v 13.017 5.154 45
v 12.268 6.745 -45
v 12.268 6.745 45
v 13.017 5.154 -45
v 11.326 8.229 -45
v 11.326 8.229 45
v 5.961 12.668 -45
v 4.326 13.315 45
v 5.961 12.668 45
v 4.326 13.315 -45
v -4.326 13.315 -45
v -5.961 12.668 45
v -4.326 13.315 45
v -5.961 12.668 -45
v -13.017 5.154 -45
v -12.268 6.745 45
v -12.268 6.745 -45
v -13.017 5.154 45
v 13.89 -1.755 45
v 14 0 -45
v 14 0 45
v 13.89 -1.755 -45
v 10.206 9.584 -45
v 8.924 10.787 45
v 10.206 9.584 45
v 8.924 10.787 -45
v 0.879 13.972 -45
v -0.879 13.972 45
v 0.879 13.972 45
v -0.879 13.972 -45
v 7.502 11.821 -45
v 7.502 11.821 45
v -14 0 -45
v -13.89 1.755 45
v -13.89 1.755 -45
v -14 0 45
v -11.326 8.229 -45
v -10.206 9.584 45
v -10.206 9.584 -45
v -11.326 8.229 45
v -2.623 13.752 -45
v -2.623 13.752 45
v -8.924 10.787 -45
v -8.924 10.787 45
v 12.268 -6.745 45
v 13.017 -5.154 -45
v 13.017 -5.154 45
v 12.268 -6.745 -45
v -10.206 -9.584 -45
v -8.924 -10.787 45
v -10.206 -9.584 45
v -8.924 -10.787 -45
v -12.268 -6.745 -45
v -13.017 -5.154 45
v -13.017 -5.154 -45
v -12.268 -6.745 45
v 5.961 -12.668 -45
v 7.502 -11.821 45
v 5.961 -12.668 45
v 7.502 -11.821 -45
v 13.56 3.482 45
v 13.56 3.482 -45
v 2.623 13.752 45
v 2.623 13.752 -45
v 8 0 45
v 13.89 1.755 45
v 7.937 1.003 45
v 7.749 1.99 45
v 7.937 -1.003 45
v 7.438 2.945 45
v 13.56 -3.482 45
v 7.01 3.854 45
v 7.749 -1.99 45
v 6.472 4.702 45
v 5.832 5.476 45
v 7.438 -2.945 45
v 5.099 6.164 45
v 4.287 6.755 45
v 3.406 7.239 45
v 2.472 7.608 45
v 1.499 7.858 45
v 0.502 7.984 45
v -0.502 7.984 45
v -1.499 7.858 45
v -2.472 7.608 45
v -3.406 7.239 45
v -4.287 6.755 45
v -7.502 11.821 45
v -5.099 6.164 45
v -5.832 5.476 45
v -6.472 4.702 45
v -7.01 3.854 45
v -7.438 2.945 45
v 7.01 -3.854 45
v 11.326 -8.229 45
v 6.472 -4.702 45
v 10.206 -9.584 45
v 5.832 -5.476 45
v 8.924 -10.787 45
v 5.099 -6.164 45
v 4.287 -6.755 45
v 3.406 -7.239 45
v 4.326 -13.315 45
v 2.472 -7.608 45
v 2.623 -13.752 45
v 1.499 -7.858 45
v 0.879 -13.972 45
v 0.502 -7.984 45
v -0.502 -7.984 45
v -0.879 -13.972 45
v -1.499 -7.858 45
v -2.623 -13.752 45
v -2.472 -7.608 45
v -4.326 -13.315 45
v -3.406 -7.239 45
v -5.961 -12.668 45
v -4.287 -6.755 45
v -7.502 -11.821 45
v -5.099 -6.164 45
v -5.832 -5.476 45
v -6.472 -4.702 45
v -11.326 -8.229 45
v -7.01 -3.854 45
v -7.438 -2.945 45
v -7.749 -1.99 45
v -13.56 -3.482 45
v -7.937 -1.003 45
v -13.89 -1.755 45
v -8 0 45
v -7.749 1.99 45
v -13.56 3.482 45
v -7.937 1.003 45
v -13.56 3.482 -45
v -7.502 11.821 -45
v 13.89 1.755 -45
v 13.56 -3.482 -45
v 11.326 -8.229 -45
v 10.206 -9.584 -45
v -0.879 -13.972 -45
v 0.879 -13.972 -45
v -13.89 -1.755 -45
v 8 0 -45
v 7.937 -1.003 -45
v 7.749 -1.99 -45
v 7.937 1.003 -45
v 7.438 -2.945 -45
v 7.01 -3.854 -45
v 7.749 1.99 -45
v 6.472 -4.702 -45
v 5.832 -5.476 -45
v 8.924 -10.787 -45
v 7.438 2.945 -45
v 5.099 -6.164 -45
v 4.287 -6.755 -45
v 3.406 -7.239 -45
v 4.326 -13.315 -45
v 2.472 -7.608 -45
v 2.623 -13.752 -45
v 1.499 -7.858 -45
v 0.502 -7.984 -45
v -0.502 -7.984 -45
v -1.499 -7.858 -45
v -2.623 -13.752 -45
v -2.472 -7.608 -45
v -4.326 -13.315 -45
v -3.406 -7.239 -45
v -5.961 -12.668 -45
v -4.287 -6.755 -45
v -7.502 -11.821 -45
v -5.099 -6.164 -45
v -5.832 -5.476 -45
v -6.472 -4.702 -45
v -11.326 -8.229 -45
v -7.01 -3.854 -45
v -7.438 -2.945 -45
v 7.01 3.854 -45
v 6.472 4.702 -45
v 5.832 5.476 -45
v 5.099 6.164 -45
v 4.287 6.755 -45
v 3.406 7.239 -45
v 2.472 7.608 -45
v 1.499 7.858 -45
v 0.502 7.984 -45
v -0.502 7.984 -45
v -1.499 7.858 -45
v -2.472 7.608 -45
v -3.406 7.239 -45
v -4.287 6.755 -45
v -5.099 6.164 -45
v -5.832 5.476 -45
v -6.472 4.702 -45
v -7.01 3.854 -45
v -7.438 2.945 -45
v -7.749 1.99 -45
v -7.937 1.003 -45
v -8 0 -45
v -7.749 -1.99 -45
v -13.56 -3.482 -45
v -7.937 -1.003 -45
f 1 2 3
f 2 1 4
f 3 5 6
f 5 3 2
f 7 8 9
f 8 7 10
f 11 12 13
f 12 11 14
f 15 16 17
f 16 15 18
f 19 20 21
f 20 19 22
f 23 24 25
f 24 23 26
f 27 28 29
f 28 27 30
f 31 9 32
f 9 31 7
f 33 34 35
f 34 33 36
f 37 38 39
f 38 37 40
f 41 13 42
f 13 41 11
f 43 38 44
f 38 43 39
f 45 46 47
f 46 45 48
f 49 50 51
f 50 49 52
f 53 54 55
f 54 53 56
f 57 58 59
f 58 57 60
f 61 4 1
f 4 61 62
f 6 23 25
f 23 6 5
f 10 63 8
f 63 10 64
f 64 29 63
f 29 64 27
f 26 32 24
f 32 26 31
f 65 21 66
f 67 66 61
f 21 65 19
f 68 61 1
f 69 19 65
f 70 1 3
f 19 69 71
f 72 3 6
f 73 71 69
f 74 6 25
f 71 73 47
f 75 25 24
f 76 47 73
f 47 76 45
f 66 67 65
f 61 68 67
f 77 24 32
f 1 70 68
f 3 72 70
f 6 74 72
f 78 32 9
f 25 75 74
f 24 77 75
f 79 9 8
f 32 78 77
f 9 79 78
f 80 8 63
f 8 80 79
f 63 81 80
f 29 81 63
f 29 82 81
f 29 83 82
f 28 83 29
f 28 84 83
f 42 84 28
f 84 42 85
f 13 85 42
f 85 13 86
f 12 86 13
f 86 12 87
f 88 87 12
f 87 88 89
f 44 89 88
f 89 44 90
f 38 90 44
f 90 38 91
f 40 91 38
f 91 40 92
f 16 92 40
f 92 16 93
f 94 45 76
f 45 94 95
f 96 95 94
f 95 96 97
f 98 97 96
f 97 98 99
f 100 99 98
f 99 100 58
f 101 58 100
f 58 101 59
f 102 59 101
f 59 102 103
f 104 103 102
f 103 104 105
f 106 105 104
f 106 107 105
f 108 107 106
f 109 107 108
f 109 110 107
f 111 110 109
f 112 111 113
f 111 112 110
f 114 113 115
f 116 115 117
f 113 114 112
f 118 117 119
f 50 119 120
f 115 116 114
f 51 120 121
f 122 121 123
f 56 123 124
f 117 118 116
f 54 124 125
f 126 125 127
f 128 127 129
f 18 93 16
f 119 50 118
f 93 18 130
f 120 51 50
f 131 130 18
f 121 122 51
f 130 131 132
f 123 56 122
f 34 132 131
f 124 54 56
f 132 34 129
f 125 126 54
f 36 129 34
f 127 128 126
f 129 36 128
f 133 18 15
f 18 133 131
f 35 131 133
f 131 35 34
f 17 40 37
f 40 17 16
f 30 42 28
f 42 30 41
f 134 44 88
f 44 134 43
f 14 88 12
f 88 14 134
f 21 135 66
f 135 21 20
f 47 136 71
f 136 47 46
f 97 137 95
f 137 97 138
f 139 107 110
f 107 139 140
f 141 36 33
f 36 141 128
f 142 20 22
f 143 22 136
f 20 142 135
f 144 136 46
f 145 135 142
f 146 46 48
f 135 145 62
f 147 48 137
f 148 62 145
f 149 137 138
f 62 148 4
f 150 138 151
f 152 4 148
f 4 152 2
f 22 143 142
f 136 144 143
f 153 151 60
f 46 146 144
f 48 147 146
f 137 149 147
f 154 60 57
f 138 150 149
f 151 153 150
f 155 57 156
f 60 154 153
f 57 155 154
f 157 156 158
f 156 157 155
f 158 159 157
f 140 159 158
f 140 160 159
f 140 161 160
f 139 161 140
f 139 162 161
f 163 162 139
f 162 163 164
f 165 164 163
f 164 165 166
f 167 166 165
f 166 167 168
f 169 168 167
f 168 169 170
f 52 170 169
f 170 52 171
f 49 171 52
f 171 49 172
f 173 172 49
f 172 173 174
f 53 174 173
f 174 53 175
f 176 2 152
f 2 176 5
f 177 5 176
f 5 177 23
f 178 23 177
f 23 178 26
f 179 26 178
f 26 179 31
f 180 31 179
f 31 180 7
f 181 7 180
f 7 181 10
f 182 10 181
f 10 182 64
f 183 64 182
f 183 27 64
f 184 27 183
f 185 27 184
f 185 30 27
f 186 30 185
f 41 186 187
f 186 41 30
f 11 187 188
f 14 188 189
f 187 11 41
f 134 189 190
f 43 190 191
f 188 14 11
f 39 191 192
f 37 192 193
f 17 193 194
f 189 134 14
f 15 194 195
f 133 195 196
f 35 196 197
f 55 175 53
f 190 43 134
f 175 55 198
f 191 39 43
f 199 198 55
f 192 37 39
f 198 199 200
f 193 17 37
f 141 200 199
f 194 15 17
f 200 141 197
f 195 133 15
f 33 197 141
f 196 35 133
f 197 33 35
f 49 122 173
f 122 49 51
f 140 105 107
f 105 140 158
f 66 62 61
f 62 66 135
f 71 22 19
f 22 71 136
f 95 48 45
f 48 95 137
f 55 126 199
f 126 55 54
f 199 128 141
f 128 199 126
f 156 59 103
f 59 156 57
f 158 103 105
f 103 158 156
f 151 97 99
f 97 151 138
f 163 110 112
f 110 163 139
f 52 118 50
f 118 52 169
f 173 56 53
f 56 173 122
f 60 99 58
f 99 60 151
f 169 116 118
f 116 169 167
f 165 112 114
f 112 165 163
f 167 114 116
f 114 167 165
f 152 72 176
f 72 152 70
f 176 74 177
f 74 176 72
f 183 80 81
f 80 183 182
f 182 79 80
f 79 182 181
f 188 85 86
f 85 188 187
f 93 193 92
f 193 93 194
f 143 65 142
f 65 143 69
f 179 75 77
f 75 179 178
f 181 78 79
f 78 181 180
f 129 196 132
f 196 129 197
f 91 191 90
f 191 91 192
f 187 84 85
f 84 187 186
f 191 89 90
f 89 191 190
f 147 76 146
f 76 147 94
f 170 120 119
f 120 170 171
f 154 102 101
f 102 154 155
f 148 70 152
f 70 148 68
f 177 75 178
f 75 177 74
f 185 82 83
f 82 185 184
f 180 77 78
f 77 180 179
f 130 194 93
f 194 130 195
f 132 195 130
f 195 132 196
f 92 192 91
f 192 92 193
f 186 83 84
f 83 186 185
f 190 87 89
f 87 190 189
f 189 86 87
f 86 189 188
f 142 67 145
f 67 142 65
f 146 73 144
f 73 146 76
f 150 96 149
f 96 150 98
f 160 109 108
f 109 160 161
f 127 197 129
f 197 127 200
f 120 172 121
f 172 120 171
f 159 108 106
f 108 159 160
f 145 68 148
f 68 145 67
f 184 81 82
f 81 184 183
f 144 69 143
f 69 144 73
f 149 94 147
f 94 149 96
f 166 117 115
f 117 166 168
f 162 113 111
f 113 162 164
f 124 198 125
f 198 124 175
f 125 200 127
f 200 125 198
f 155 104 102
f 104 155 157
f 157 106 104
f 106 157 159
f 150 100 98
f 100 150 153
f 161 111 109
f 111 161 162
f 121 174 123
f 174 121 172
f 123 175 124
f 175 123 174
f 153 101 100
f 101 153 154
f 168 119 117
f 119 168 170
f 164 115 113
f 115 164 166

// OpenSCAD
$fn = 50;


difference() {
	union() {
		translate(v = [0, 0, -45.0000000000]) {
			cylinder(h = 90, r = 14.0000000000);
		}
	}
	union() {
		translate(v = [0, 0, -100.0000000000]) {
			cylinder(h = 200, r = 8);
		}
	}
}
